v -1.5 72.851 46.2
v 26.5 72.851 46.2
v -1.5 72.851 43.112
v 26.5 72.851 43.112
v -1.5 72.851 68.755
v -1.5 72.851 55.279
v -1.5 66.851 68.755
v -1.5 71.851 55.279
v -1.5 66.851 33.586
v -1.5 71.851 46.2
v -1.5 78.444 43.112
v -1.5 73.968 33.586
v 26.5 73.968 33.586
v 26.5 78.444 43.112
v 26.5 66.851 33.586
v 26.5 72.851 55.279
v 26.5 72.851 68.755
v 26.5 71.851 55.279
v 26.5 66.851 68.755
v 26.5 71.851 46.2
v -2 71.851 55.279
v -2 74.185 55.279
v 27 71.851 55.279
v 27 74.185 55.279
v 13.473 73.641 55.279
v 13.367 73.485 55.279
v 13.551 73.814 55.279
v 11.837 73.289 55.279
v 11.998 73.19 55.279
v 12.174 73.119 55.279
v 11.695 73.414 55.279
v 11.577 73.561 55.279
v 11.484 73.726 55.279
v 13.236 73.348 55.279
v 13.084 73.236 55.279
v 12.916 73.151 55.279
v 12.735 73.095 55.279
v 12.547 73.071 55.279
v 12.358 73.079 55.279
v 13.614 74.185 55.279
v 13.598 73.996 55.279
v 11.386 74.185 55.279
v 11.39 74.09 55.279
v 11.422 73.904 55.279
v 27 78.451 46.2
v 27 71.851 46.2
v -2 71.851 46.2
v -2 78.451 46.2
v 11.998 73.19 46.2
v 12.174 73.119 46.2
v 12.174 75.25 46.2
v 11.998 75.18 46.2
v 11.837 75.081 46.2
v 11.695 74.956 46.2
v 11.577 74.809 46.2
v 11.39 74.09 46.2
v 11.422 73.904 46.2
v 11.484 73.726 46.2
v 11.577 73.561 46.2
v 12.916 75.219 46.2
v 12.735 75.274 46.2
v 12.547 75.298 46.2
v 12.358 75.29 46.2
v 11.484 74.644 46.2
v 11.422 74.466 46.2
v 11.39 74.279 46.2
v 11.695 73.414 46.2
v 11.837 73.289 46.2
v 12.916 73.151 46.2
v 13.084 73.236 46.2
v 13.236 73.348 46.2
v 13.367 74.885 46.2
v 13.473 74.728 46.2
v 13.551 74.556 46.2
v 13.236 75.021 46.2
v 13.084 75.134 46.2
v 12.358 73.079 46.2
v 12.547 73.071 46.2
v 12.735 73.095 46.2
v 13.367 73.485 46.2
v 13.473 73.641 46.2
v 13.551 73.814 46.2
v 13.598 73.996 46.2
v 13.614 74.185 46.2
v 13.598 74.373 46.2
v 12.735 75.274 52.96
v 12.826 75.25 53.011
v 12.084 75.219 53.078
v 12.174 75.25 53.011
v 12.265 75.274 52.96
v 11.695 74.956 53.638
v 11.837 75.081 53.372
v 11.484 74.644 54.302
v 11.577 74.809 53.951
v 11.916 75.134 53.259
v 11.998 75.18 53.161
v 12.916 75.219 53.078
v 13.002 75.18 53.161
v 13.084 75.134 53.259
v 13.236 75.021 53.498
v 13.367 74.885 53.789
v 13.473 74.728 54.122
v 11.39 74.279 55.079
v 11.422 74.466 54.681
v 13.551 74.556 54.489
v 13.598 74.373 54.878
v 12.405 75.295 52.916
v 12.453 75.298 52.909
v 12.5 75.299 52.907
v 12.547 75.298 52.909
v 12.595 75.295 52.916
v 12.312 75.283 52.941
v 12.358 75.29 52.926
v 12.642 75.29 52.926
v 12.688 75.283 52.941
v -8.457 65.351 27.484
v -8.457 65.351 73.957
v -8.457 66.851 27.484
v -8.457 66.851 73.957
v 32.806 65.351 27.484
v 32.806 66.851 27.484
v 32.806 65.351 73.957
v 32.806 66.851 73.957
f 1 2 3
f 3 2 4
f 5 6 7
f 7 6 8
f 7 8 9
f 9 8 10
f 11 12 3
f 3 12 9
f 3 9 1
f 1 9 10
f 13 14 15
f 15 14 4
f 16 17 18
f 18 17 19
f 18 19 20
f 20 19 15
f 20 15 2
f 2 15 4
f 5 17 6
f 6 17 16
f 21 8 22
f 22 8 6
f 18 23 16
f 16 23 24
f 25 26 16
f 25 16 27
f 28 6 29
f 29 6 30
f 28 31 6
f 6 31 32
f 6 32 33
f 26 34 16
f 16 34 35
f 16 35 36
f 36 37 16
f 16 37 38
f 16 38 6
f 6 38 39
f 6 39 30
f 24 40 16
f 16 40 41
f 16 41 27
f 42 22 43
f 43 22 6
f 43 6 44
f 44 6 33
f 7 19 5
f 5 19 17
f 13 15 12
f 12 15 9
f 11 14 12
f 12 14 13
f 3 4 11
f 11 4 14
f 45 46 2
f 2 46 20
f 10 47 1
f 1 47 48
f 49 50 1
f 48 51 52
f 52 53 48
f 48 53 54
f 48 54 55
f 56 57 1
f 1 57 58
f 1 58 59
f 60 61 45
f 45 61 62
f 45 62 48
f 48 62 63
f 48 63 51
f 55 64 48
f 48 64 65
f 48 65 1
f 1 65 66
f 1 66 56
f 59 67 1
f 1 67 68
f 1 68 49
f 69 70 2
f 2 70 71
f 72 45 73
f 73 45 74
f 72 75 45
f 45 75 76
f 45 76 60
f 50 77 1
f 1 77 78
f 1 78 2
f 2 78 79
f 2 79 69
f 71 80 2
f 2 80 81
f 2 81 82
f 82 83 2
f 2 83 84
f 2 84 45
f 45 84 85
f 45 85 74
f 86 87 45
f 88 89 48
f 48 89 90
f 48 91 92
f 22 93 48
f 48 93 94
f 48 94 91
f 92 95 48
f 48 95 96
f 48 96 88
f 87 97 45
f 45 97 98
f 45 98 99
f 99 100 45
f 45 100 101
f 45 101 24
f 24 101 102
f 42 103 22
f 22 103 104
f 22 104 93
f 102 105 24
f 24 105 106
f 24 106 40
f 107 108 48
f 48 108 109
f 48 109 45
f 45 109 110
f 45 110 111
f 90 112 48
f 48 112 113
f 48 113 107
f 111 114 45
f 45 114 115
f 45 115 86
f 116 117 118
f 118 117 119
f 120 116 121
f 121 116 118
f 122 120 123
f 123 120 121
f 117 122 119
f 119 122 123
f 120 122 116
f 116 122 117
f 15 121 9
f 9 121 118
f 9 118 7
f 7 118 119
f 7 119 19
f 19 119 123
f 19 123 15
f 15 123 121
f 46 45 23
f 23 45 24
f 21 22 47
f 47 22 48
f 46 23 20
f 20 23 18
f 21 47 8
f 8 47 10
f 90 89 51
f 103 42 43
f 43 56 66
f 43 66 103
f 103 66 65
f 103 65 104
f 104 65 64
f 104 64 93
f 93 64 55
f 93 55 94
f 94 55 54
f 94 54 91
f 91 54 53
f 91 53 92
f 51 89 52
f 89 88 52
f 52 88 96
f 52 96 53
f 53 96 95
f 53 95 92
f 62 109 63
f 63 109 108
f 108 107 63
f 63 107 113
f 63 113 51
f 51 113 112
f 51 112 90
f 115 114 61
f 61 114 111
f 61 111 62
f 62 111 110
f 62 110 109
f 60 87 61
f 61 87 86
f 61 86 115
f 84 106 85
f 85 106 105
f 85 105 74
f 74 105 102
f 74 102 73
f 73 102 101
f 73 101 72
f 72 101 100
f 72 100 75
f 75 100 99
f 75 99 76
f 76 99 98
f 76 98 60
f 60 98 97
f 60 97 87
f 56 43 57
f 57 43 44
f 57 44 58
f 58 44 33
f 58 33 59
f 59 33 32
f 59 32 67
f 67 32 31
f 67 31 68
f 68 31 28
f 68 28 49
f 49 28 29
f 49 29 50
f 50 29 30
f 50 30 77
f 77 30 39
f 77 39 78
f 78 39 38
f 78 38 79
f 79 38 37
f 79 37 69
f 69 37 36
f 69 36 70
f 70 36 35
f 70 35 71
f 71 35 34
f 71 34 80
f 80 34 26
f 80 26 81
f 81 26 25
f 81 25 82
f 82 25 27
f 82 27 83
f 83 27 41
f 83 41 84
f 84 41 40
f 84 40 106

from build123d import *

# Parameters (mm, degrees)
SKETCH1_W            = 35.169359311
SKETCH1_H            = 6
BOSS_EXTRUDE1_DEPTH  = 25
SKETCH2_W            = 35.169359311
SKETCH2_H            = 6
BOSS_EXTRUDE2_DEPTH  = 1.5
SKETCH3_W            = 35.169359311
SKETCH3_H            = 6
BOSS_EXTRUDE3_DEPTH  = 1.5
SKETCH4_W            = 41.262531498
SKETCH4_H            = 46.473158343
BOSS_EXTRUDE4_DEPTH  = 1.5
BOSS_EXTRUDE5_DEPTH  = 2
BOSS_EXTRUDE6_DEPTH  = 2
SKETCH8_W            = 9.078602689
SKETCH8_H            = 1
BOSS_EXTRUDE7_DEPTH  = 0.5
SKETCH9_W            = 9.078602689
SKETCH9_H            = 1
BOSS_EXTRUDE8_DEPTH  = 0.5
BOSS_EXTRUDE9_DEPTH  = 1.5
BOSS_EXTRUDE10_DEPTH = 1.5
SKETCH13_R           = 1.114440401
CUT_EXTRUDE1_DEPTH   = 10


with BuildPart() as part:
    # Sketch1 → Boss-Extrude1 (new body)
    with BuildSketch(Plane(origin=(0, 0, 0), x_dir=(0, 0, -1), z_dir=(1, 0, 0))):
        Polygon((-55.278617962, 72.850669778), (-46.200015273, 72.850669778), (-46.200015273, 78.4511375), (-55.278617962, 74.184840555), align=None)
        with Locations((-51.170377926, 69.850669778)):
            Rectangle(SKETCH1_W, SKETCH1_H)
        Polygon((-43.112055174, 72.850669778), (-33.58569827, 72.850669778), (-33.58569827, 73.967743314), (-43.112055174, 78.444452863), align=None)
    extrude(amount=BOSS_EXTRUDE1_DEPTH)

    # Sketch2 → Boss-Extrude2 (add)
    with BuildSketch(Plane(origin=(25, 0, 0), x_dir=(0, 0, -1), z_dir=(1, 0, 0))):
        with Locations((-51.170377926, 69.850669778)):
            Rectangle(SKETCH2_W, SKETCH2_H)
    extrude(amount=BOSS_EXTRUDE2_DEPTH)

    # Sketch3 → Boss-Extrude3 (add)
    with BuildSketch(Plane.ZY):
        with Locations((51.170377926, 69.850669778)):
            Rectangle(SKETCH3_W, SKETCH3_H)
    extrude(amount=BOSS_EXTRUDE3_DEPTH)

    # Sketch4 → Boss-Extrude4 (add)
    with BuildSketch(Plane.XZ.offset(-66.850669778)):
        with Locations((12.174758659, 50.720136909)):
            Rectangle(SKETCH4_W, SKETCH4_H)
    extrude(amount=BOSS_EXTRUDE4_DEPTH)

    # Sketch6 → Boss-Extrude5 (add)
    with BuildSketch(Plane(origin=(25, 0, 0), x_dir=(0, 0, -1), z_dir=(1, 0, 0))):
        Polygon((-55.278617962, 72.850669778), (-55.278617962, 74.184840555), (-46.200015273, 78.4511375), (-46.200015273, 72.850669778), align=None)
    extrude(amount=BOSS_EXTRUDE5_DEPTH)

    # Sketch7 → Boss-Extrude6 (add)
    with BuildSketch(Plane.ZY):
        Polygon((46.200015273, 72.850669778), (55.278617962, 72.850669778), (55.278617962, 74.184840555), (46.200015273, 78.4511375), align=None)
    extrude(amount=BOSS_EXTRUDE6_DEPTH)

    # Sketch8 → Boss-Extrude7 (add)
    with BuildSketch(Plane(origin=(26.5, 0, 0), x_dir=(0, 0, -1), z_dir=(1, 0, 0))):
        with Locations((-50.739316618, 72.350669778)):
            Rectangle(SKETCH8_W, SKETCH8_H)
    extrude(amount=BOSS_EXTRUDE7_DEPTH)

    # Sketch9 → Boss-Extrude8 (add)
    with BuildSketch(Plane.ZY.offset(1.5)):
        with Locations((50.739316618, 72.350669778)):
            Rectangle(SKETCH9_W, SKETCH9_H)
    extrude(amount=BOSS_EXTRUDE8_DEPTH)

    # Sketch10 → Boss-Extrude9 (add)
    with BuildSketch(Plane(origin=(25, 0, 0), x_dir=(0, 0, -1), z_dir=(1, 0, 0))):
        Polygon((-43.112055174, 72.850669778), (-33.58569827, 72.850669778), (-33.58569827, 73.967743314), (-43.112055174, 78.444452863), align=None)
    extrude(amount=BOSS_EXTRUDE9_DEPTH)

    # Sketch11 → Boss-Extrude10 (add)
    with BuildSketch(Plane.ZY):
        Polygon((33.58569827, 72.850669778), (43.112055174, 72.850669778), (43.112055174, 78.444452863), (33.58569827, 73.967743314), align=None)
    extrude(amount=BOSS_EXTRUDE10_DEPTH)

    # Sketch13 → Cut-Extrude1 (cut)
    with BuildSketch(Plane.XY.offset(55.278617962)):
        with Locations((12.5, 74.184840555)):
            Circle(SKETCH13_R)
    extrude(amount=-CUT_EXTRUDE1_DEPTH, mode=Mode.SUBTRACT)


solid = part.part
